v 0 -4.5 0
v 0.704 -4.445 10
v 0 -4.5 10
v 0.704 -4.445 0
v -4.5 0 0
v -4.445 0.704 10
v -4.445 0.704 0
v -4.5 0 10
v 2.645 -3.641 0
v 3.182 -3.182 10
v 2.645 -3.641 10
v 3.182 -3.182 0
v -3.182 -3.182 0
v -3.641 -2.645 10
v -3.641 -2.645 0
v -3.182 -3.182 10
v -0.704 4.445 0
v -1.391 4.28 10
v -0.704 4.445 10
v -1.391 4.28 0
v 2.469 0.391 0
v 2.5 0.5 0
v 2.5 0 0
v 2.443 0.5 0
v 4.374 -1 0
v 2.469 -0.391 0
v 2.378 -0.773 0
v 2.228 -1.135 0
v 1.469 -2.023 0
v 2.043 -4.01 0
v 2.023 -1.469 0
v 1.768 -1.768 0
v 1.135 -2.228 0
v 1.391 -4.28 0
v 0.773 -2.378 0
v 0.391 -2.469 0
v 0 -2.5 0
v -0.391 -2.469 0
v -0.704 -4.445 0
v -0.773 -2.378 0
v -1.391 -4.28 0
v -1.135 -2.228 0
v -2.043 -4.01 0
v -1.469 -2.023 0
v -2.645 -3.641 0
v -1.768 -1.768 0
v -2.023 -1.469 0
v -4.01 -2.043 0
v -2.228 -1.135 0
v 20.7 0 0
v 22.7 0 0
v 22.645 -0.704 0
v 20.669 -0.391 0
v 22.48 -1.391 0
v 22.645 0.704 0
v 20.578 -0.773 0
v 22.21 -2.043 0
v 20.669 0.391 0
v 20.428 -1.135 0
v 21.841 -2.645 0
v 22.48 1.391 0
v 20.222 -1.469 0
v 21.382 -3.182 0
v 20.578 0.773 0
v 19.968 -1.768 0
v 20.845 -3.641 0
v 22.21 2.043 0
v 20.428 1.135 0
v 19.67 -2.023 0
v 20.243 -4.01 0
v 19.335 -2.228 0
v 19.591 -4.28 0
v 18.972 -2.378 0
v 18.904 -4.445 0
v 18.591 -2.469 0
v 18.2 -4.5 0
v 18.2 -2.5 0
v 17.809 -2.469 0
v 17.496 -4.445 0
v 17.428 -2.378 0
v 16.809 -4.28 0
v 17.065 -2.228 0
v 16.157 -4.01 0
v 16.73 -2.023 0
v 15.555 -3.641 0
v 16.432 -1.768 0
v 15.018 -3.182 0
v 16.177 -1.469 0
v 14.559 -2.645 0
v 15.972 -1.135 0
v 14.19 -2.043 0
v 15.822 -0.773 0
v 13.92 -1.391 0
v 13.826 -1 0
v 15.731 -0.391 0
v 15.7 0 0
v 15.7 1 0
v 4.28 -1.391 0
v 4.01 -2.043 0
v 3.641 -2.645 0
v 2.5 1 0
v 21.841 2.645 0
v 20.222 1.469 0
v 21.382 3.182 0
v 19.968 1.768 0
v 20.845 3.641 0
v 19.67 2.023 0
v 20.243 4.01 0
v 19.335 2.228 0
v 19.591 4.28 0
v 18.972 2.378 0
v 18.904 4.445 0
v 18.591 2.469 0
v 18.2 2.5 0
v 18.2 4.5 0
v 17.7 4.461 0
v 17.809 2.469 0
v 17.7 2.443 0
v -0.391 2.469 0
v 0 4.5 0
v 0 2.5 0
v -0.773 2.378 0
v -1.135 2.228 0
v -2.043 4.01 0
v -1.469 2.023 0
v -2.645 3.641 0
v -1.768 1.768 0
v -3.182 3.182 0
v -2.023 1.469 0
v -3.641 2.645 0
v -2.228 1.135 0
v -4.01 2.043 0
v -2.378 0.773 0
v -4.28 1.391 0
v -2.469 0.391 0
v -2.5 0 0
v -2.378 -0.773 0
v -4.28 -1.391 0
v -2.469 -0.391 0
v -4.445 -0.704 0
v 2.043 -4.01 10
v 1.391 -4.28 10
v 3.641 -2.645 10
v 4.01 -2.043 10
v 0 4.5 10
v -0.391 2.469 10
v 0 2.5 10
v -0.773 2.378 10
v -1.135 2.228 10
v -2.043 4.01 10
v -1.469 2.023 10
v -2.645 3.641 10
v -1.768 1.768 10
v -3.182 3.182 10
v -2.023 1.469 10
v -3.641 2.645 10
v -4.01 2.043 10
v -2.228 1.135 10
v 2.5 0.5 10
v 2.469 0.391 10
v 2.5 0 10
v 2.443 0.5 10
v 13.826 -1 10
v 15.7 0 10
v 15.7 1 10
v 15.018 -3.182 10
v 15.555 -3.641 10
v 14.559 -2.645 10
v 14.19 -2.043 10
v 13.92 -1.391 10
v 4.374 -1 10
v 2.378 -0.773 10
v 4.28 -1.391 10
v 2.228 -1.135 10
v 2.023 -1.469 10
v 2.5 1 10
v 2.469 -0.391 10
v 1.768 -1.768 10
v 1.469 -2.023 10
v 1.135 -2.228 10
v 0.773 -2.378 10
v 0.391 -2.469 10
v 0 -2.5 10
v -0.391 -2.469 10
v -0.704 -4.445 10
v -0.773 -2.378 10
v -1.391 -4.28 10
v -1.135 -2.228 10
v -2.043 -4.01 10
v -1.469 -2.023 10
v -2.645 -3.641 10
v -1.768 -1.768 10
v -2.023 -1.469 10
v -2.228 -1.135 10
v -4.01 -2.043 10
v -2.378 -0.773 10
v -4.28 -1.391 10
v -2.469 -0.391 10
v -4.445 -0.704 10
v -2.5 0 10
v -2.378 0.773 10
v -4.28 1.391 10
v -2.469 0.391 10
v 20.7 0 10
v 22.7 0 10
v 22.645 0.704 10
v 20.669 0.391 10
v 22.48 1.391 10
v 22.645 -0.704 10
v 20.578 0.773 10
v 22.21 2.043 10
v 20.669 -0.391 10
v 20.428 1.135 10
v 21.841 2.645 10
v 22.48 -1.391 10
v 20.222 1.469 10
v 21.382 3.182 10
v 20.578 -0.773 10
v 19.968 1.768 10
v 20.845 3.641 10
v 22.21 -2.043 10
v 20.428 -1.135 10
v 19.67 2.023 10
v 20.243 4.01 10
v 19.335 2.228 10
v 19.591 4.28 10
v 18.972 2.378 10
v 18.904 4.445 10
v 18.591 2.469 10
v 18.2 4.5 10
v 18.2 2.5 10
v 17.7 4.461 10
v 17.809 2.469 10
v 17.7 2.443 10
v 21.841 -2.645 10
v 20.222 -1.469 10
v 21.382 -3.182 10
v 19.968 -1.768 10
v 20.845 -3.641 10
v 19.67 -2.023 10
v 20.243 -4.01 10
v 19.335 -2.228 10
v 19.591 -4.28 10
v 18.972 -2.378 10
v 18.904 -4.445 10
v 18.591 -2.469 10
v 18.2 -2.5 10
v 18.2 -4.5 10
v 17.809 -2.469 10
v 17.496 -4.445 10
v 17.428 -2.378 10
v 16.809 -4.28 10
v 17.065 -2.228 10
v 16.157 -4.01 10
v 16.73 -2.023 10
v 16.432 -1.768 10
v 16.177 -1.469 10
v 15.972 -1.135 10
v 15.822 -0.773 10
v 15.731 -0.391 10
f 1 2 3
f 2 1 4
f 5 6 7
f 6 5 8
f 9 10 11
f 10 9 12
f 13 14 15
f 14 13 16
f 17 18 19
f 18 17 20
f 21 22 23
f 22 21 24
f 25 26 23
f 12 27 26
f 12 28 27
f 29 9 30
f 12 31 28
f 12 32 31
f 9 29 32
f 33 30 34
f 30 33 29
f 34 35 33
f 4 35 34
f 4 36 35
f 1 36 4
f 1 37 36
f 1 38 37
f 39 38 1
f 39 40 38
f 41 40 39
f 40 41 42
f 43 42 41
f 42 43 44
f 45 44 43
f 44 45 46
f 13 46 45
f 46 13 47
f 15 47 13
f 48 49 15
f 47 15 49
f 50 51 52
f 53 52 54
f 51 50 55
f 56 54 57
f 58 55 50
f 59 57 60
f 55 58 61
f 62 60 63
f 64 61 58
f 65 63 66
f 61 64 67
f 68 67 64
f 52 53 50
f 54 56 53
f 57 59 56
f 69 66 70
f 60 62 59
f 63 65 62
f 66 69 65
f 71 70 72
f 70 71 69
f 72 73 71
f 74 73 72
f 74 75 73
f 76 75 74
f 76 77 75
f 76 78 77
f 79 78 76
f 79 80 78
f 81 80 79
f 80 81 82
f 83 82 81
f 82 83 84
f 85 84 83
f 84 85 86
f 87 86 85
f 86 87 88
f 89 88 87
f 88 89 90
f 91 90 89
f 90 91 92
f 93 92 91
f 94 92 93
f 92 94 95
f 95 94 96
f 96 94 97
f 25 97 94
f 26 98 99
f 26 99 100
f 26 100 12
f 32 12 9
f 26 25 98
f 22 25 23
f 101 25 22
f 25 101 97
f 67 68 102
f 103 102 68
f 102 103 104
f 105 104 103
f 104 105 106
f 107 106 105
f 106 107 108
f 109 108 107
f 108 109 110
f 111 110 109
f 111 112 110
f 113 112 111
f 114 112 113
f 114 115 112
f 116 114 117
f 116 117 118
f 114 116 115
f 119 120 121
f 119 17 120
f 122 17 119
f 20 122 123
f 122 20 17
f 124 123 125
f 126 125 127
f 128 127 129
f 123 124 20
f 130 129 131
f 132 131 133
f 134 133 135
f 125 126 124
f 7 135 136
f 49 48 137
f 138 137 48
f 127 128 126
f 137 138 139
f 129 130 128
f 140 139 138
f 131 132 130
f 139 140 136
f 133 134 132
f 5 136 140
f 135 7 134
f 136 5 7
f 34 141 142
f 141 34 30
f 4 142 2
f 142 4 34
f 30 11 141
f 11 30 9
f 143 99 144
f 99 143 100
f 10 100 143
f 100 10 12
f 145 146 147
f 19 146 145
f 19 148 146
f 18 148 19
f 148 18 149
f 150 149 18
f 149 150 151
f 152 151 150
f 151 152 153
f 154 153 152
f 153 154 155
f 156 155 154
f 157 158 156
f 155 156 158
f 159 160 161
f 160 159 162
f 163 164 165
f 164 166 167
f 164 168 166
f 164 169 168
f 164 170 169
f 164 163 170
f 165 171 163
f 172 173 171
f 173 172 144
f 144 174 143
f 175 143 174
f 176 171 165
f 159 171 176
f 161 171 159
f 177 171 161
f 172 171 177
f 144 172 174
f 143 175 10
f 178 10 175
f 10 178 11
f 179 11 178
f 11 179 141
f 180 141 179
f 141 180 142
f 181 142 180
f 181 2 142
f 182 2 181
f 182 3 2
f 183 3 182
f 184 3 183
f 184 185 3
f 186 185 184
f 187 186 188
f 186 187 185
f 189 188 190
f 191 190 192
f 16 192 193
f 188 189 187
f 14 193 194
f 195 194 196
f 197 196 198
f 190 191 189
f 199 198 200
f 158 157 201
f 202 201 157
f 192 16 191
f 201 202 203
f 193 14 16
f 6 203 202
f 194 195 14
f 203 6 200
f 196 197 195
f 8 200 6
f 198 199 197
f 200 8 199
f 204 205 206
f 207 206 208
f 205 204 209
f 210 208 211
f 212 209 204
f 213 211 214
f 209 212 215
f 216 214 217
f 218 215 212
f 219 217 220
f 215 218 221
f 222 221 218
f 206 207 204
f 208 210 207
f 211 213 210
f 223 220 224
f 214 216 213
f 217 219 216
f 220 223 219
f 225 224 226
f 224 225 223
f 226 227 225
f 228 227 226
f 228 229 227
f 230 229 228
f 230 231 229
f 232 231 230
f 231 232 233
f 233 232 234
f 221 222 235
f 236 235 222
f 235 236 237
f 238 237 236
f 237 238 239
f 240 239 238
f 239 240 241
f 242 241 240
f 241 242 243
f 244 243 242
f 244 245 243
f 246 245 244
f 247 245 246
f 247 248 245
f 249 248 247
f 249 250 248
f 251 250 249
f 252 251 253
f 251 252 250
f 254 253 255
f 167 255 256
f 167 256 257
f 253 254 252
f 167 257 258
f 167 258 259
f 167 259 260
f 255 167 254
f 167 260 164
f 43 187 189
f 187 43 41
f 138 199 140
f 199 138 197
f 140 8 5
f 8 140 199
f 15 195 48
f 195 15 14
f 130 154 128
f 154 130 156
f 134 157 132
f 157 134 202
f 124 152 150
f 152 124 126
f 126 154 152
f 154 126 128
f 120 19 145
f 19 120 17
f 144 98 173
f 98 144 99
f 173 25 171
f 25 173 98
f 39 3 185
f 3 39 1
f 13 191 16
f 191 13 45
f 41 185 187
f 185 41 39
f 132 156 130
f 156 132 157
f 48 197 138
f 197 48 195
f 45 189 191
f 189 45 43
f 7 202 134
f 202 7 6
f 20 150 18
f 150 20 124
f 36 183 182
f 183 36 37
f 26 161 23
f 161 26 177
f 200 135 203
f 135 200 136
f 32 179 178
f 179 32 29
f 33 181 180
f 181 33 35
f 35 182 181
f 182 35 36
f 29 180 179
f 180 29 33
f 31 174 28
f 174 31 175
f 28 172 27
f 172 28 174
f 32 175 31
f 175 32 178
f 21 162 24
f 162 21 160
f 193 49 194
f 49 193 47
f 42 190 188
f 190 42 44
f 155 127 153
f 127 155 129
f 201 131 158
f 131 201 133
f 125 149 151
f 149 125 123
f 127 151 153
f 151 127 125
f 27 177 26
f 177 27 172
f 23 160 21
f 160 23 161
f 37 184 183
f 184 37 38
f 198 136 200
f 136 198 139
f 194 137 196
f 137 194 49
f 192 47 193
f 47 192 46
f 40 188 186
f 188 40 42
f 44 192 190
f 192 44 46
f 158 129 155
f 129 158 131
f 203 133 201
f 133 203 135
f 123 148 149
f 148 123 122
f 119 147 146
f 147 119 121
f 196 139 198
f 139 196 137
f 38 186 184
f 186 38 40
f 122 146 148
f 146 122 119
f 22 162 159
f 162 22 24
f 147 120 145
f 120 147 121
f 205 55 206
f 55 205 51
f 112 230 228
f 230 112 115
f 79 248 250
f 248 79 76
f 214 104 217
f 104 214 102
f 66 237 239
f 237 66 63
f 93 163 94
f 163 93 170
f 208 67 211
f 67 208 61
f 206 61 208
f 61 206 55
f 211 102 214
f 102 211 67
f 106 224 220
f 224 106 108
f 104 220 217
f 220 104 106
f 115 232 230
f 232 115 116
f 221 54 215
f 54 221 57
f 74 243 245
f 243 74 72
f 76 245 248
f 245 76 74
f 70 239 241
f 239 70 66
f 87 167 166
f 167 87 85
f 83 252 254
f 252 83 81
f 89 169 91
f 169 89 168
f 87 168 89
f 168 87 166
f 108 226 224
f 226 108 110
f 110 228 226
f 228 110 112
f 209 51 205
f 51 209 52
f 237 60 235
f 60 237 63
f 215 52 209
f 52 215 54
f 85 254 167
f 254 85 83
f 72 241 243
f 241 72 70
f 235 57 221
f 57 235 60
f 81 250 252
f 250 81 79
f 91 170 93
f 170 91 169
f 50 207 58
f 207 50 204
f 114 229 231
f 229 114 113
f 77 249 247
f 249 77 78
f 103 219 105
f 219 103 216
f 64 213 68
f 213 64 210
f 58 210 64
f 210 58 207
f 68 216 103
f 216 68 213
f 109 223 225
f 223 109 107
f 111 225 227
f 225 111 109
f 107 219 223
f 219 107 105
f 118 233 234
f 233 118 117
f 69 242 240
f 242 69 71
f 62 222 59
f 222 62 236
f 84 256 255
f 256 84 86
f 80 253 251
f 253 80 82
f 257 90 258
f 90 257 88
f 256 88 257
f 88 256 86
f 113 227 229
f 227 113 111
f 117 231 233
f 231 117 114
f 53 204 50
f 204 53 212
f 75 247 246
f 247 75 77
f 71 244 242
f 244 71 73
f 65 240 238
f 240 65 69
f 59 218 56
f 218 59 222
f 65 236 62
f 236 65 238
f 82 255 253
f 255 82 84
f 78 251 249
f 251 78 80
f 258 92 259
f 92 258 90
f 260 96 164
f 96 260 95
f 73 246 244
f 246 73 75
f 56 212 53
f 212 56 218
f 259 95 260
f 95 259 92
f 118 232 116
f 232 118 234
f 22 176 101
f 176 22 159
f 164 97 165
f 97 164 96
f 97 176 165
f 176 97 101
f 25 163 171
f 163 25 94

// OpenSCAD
//Arms tensioner for Mini Kossel

width=2;       //tensioner width
height=10;      //tensioner height
armspan=38.2;   //kossel arms span
tension=25;    //how much to make tensioner smaller than arms span
arc_dia=5;    //arc inner diameter
$fn=40;

main();

module main(){
    union(){
        translate([arc_dia/2, -width/2,0]) cube([armspan-tension, width, height]);
        rotate([0,0,-90]) arc();
        translate([arc_dia + armspan - tension, 0, 0]) arc();
    }
}

module arc(){
    difference(){
        cylinder(d=arc_dia + 2*width, h=height);
        cylinder(d=arc_dia, h=height);
        translate([-arc_dia/2 - width, 0, 0]) cube([0 + 2*width, arc_dia/2 + width, height]);
    }
}
